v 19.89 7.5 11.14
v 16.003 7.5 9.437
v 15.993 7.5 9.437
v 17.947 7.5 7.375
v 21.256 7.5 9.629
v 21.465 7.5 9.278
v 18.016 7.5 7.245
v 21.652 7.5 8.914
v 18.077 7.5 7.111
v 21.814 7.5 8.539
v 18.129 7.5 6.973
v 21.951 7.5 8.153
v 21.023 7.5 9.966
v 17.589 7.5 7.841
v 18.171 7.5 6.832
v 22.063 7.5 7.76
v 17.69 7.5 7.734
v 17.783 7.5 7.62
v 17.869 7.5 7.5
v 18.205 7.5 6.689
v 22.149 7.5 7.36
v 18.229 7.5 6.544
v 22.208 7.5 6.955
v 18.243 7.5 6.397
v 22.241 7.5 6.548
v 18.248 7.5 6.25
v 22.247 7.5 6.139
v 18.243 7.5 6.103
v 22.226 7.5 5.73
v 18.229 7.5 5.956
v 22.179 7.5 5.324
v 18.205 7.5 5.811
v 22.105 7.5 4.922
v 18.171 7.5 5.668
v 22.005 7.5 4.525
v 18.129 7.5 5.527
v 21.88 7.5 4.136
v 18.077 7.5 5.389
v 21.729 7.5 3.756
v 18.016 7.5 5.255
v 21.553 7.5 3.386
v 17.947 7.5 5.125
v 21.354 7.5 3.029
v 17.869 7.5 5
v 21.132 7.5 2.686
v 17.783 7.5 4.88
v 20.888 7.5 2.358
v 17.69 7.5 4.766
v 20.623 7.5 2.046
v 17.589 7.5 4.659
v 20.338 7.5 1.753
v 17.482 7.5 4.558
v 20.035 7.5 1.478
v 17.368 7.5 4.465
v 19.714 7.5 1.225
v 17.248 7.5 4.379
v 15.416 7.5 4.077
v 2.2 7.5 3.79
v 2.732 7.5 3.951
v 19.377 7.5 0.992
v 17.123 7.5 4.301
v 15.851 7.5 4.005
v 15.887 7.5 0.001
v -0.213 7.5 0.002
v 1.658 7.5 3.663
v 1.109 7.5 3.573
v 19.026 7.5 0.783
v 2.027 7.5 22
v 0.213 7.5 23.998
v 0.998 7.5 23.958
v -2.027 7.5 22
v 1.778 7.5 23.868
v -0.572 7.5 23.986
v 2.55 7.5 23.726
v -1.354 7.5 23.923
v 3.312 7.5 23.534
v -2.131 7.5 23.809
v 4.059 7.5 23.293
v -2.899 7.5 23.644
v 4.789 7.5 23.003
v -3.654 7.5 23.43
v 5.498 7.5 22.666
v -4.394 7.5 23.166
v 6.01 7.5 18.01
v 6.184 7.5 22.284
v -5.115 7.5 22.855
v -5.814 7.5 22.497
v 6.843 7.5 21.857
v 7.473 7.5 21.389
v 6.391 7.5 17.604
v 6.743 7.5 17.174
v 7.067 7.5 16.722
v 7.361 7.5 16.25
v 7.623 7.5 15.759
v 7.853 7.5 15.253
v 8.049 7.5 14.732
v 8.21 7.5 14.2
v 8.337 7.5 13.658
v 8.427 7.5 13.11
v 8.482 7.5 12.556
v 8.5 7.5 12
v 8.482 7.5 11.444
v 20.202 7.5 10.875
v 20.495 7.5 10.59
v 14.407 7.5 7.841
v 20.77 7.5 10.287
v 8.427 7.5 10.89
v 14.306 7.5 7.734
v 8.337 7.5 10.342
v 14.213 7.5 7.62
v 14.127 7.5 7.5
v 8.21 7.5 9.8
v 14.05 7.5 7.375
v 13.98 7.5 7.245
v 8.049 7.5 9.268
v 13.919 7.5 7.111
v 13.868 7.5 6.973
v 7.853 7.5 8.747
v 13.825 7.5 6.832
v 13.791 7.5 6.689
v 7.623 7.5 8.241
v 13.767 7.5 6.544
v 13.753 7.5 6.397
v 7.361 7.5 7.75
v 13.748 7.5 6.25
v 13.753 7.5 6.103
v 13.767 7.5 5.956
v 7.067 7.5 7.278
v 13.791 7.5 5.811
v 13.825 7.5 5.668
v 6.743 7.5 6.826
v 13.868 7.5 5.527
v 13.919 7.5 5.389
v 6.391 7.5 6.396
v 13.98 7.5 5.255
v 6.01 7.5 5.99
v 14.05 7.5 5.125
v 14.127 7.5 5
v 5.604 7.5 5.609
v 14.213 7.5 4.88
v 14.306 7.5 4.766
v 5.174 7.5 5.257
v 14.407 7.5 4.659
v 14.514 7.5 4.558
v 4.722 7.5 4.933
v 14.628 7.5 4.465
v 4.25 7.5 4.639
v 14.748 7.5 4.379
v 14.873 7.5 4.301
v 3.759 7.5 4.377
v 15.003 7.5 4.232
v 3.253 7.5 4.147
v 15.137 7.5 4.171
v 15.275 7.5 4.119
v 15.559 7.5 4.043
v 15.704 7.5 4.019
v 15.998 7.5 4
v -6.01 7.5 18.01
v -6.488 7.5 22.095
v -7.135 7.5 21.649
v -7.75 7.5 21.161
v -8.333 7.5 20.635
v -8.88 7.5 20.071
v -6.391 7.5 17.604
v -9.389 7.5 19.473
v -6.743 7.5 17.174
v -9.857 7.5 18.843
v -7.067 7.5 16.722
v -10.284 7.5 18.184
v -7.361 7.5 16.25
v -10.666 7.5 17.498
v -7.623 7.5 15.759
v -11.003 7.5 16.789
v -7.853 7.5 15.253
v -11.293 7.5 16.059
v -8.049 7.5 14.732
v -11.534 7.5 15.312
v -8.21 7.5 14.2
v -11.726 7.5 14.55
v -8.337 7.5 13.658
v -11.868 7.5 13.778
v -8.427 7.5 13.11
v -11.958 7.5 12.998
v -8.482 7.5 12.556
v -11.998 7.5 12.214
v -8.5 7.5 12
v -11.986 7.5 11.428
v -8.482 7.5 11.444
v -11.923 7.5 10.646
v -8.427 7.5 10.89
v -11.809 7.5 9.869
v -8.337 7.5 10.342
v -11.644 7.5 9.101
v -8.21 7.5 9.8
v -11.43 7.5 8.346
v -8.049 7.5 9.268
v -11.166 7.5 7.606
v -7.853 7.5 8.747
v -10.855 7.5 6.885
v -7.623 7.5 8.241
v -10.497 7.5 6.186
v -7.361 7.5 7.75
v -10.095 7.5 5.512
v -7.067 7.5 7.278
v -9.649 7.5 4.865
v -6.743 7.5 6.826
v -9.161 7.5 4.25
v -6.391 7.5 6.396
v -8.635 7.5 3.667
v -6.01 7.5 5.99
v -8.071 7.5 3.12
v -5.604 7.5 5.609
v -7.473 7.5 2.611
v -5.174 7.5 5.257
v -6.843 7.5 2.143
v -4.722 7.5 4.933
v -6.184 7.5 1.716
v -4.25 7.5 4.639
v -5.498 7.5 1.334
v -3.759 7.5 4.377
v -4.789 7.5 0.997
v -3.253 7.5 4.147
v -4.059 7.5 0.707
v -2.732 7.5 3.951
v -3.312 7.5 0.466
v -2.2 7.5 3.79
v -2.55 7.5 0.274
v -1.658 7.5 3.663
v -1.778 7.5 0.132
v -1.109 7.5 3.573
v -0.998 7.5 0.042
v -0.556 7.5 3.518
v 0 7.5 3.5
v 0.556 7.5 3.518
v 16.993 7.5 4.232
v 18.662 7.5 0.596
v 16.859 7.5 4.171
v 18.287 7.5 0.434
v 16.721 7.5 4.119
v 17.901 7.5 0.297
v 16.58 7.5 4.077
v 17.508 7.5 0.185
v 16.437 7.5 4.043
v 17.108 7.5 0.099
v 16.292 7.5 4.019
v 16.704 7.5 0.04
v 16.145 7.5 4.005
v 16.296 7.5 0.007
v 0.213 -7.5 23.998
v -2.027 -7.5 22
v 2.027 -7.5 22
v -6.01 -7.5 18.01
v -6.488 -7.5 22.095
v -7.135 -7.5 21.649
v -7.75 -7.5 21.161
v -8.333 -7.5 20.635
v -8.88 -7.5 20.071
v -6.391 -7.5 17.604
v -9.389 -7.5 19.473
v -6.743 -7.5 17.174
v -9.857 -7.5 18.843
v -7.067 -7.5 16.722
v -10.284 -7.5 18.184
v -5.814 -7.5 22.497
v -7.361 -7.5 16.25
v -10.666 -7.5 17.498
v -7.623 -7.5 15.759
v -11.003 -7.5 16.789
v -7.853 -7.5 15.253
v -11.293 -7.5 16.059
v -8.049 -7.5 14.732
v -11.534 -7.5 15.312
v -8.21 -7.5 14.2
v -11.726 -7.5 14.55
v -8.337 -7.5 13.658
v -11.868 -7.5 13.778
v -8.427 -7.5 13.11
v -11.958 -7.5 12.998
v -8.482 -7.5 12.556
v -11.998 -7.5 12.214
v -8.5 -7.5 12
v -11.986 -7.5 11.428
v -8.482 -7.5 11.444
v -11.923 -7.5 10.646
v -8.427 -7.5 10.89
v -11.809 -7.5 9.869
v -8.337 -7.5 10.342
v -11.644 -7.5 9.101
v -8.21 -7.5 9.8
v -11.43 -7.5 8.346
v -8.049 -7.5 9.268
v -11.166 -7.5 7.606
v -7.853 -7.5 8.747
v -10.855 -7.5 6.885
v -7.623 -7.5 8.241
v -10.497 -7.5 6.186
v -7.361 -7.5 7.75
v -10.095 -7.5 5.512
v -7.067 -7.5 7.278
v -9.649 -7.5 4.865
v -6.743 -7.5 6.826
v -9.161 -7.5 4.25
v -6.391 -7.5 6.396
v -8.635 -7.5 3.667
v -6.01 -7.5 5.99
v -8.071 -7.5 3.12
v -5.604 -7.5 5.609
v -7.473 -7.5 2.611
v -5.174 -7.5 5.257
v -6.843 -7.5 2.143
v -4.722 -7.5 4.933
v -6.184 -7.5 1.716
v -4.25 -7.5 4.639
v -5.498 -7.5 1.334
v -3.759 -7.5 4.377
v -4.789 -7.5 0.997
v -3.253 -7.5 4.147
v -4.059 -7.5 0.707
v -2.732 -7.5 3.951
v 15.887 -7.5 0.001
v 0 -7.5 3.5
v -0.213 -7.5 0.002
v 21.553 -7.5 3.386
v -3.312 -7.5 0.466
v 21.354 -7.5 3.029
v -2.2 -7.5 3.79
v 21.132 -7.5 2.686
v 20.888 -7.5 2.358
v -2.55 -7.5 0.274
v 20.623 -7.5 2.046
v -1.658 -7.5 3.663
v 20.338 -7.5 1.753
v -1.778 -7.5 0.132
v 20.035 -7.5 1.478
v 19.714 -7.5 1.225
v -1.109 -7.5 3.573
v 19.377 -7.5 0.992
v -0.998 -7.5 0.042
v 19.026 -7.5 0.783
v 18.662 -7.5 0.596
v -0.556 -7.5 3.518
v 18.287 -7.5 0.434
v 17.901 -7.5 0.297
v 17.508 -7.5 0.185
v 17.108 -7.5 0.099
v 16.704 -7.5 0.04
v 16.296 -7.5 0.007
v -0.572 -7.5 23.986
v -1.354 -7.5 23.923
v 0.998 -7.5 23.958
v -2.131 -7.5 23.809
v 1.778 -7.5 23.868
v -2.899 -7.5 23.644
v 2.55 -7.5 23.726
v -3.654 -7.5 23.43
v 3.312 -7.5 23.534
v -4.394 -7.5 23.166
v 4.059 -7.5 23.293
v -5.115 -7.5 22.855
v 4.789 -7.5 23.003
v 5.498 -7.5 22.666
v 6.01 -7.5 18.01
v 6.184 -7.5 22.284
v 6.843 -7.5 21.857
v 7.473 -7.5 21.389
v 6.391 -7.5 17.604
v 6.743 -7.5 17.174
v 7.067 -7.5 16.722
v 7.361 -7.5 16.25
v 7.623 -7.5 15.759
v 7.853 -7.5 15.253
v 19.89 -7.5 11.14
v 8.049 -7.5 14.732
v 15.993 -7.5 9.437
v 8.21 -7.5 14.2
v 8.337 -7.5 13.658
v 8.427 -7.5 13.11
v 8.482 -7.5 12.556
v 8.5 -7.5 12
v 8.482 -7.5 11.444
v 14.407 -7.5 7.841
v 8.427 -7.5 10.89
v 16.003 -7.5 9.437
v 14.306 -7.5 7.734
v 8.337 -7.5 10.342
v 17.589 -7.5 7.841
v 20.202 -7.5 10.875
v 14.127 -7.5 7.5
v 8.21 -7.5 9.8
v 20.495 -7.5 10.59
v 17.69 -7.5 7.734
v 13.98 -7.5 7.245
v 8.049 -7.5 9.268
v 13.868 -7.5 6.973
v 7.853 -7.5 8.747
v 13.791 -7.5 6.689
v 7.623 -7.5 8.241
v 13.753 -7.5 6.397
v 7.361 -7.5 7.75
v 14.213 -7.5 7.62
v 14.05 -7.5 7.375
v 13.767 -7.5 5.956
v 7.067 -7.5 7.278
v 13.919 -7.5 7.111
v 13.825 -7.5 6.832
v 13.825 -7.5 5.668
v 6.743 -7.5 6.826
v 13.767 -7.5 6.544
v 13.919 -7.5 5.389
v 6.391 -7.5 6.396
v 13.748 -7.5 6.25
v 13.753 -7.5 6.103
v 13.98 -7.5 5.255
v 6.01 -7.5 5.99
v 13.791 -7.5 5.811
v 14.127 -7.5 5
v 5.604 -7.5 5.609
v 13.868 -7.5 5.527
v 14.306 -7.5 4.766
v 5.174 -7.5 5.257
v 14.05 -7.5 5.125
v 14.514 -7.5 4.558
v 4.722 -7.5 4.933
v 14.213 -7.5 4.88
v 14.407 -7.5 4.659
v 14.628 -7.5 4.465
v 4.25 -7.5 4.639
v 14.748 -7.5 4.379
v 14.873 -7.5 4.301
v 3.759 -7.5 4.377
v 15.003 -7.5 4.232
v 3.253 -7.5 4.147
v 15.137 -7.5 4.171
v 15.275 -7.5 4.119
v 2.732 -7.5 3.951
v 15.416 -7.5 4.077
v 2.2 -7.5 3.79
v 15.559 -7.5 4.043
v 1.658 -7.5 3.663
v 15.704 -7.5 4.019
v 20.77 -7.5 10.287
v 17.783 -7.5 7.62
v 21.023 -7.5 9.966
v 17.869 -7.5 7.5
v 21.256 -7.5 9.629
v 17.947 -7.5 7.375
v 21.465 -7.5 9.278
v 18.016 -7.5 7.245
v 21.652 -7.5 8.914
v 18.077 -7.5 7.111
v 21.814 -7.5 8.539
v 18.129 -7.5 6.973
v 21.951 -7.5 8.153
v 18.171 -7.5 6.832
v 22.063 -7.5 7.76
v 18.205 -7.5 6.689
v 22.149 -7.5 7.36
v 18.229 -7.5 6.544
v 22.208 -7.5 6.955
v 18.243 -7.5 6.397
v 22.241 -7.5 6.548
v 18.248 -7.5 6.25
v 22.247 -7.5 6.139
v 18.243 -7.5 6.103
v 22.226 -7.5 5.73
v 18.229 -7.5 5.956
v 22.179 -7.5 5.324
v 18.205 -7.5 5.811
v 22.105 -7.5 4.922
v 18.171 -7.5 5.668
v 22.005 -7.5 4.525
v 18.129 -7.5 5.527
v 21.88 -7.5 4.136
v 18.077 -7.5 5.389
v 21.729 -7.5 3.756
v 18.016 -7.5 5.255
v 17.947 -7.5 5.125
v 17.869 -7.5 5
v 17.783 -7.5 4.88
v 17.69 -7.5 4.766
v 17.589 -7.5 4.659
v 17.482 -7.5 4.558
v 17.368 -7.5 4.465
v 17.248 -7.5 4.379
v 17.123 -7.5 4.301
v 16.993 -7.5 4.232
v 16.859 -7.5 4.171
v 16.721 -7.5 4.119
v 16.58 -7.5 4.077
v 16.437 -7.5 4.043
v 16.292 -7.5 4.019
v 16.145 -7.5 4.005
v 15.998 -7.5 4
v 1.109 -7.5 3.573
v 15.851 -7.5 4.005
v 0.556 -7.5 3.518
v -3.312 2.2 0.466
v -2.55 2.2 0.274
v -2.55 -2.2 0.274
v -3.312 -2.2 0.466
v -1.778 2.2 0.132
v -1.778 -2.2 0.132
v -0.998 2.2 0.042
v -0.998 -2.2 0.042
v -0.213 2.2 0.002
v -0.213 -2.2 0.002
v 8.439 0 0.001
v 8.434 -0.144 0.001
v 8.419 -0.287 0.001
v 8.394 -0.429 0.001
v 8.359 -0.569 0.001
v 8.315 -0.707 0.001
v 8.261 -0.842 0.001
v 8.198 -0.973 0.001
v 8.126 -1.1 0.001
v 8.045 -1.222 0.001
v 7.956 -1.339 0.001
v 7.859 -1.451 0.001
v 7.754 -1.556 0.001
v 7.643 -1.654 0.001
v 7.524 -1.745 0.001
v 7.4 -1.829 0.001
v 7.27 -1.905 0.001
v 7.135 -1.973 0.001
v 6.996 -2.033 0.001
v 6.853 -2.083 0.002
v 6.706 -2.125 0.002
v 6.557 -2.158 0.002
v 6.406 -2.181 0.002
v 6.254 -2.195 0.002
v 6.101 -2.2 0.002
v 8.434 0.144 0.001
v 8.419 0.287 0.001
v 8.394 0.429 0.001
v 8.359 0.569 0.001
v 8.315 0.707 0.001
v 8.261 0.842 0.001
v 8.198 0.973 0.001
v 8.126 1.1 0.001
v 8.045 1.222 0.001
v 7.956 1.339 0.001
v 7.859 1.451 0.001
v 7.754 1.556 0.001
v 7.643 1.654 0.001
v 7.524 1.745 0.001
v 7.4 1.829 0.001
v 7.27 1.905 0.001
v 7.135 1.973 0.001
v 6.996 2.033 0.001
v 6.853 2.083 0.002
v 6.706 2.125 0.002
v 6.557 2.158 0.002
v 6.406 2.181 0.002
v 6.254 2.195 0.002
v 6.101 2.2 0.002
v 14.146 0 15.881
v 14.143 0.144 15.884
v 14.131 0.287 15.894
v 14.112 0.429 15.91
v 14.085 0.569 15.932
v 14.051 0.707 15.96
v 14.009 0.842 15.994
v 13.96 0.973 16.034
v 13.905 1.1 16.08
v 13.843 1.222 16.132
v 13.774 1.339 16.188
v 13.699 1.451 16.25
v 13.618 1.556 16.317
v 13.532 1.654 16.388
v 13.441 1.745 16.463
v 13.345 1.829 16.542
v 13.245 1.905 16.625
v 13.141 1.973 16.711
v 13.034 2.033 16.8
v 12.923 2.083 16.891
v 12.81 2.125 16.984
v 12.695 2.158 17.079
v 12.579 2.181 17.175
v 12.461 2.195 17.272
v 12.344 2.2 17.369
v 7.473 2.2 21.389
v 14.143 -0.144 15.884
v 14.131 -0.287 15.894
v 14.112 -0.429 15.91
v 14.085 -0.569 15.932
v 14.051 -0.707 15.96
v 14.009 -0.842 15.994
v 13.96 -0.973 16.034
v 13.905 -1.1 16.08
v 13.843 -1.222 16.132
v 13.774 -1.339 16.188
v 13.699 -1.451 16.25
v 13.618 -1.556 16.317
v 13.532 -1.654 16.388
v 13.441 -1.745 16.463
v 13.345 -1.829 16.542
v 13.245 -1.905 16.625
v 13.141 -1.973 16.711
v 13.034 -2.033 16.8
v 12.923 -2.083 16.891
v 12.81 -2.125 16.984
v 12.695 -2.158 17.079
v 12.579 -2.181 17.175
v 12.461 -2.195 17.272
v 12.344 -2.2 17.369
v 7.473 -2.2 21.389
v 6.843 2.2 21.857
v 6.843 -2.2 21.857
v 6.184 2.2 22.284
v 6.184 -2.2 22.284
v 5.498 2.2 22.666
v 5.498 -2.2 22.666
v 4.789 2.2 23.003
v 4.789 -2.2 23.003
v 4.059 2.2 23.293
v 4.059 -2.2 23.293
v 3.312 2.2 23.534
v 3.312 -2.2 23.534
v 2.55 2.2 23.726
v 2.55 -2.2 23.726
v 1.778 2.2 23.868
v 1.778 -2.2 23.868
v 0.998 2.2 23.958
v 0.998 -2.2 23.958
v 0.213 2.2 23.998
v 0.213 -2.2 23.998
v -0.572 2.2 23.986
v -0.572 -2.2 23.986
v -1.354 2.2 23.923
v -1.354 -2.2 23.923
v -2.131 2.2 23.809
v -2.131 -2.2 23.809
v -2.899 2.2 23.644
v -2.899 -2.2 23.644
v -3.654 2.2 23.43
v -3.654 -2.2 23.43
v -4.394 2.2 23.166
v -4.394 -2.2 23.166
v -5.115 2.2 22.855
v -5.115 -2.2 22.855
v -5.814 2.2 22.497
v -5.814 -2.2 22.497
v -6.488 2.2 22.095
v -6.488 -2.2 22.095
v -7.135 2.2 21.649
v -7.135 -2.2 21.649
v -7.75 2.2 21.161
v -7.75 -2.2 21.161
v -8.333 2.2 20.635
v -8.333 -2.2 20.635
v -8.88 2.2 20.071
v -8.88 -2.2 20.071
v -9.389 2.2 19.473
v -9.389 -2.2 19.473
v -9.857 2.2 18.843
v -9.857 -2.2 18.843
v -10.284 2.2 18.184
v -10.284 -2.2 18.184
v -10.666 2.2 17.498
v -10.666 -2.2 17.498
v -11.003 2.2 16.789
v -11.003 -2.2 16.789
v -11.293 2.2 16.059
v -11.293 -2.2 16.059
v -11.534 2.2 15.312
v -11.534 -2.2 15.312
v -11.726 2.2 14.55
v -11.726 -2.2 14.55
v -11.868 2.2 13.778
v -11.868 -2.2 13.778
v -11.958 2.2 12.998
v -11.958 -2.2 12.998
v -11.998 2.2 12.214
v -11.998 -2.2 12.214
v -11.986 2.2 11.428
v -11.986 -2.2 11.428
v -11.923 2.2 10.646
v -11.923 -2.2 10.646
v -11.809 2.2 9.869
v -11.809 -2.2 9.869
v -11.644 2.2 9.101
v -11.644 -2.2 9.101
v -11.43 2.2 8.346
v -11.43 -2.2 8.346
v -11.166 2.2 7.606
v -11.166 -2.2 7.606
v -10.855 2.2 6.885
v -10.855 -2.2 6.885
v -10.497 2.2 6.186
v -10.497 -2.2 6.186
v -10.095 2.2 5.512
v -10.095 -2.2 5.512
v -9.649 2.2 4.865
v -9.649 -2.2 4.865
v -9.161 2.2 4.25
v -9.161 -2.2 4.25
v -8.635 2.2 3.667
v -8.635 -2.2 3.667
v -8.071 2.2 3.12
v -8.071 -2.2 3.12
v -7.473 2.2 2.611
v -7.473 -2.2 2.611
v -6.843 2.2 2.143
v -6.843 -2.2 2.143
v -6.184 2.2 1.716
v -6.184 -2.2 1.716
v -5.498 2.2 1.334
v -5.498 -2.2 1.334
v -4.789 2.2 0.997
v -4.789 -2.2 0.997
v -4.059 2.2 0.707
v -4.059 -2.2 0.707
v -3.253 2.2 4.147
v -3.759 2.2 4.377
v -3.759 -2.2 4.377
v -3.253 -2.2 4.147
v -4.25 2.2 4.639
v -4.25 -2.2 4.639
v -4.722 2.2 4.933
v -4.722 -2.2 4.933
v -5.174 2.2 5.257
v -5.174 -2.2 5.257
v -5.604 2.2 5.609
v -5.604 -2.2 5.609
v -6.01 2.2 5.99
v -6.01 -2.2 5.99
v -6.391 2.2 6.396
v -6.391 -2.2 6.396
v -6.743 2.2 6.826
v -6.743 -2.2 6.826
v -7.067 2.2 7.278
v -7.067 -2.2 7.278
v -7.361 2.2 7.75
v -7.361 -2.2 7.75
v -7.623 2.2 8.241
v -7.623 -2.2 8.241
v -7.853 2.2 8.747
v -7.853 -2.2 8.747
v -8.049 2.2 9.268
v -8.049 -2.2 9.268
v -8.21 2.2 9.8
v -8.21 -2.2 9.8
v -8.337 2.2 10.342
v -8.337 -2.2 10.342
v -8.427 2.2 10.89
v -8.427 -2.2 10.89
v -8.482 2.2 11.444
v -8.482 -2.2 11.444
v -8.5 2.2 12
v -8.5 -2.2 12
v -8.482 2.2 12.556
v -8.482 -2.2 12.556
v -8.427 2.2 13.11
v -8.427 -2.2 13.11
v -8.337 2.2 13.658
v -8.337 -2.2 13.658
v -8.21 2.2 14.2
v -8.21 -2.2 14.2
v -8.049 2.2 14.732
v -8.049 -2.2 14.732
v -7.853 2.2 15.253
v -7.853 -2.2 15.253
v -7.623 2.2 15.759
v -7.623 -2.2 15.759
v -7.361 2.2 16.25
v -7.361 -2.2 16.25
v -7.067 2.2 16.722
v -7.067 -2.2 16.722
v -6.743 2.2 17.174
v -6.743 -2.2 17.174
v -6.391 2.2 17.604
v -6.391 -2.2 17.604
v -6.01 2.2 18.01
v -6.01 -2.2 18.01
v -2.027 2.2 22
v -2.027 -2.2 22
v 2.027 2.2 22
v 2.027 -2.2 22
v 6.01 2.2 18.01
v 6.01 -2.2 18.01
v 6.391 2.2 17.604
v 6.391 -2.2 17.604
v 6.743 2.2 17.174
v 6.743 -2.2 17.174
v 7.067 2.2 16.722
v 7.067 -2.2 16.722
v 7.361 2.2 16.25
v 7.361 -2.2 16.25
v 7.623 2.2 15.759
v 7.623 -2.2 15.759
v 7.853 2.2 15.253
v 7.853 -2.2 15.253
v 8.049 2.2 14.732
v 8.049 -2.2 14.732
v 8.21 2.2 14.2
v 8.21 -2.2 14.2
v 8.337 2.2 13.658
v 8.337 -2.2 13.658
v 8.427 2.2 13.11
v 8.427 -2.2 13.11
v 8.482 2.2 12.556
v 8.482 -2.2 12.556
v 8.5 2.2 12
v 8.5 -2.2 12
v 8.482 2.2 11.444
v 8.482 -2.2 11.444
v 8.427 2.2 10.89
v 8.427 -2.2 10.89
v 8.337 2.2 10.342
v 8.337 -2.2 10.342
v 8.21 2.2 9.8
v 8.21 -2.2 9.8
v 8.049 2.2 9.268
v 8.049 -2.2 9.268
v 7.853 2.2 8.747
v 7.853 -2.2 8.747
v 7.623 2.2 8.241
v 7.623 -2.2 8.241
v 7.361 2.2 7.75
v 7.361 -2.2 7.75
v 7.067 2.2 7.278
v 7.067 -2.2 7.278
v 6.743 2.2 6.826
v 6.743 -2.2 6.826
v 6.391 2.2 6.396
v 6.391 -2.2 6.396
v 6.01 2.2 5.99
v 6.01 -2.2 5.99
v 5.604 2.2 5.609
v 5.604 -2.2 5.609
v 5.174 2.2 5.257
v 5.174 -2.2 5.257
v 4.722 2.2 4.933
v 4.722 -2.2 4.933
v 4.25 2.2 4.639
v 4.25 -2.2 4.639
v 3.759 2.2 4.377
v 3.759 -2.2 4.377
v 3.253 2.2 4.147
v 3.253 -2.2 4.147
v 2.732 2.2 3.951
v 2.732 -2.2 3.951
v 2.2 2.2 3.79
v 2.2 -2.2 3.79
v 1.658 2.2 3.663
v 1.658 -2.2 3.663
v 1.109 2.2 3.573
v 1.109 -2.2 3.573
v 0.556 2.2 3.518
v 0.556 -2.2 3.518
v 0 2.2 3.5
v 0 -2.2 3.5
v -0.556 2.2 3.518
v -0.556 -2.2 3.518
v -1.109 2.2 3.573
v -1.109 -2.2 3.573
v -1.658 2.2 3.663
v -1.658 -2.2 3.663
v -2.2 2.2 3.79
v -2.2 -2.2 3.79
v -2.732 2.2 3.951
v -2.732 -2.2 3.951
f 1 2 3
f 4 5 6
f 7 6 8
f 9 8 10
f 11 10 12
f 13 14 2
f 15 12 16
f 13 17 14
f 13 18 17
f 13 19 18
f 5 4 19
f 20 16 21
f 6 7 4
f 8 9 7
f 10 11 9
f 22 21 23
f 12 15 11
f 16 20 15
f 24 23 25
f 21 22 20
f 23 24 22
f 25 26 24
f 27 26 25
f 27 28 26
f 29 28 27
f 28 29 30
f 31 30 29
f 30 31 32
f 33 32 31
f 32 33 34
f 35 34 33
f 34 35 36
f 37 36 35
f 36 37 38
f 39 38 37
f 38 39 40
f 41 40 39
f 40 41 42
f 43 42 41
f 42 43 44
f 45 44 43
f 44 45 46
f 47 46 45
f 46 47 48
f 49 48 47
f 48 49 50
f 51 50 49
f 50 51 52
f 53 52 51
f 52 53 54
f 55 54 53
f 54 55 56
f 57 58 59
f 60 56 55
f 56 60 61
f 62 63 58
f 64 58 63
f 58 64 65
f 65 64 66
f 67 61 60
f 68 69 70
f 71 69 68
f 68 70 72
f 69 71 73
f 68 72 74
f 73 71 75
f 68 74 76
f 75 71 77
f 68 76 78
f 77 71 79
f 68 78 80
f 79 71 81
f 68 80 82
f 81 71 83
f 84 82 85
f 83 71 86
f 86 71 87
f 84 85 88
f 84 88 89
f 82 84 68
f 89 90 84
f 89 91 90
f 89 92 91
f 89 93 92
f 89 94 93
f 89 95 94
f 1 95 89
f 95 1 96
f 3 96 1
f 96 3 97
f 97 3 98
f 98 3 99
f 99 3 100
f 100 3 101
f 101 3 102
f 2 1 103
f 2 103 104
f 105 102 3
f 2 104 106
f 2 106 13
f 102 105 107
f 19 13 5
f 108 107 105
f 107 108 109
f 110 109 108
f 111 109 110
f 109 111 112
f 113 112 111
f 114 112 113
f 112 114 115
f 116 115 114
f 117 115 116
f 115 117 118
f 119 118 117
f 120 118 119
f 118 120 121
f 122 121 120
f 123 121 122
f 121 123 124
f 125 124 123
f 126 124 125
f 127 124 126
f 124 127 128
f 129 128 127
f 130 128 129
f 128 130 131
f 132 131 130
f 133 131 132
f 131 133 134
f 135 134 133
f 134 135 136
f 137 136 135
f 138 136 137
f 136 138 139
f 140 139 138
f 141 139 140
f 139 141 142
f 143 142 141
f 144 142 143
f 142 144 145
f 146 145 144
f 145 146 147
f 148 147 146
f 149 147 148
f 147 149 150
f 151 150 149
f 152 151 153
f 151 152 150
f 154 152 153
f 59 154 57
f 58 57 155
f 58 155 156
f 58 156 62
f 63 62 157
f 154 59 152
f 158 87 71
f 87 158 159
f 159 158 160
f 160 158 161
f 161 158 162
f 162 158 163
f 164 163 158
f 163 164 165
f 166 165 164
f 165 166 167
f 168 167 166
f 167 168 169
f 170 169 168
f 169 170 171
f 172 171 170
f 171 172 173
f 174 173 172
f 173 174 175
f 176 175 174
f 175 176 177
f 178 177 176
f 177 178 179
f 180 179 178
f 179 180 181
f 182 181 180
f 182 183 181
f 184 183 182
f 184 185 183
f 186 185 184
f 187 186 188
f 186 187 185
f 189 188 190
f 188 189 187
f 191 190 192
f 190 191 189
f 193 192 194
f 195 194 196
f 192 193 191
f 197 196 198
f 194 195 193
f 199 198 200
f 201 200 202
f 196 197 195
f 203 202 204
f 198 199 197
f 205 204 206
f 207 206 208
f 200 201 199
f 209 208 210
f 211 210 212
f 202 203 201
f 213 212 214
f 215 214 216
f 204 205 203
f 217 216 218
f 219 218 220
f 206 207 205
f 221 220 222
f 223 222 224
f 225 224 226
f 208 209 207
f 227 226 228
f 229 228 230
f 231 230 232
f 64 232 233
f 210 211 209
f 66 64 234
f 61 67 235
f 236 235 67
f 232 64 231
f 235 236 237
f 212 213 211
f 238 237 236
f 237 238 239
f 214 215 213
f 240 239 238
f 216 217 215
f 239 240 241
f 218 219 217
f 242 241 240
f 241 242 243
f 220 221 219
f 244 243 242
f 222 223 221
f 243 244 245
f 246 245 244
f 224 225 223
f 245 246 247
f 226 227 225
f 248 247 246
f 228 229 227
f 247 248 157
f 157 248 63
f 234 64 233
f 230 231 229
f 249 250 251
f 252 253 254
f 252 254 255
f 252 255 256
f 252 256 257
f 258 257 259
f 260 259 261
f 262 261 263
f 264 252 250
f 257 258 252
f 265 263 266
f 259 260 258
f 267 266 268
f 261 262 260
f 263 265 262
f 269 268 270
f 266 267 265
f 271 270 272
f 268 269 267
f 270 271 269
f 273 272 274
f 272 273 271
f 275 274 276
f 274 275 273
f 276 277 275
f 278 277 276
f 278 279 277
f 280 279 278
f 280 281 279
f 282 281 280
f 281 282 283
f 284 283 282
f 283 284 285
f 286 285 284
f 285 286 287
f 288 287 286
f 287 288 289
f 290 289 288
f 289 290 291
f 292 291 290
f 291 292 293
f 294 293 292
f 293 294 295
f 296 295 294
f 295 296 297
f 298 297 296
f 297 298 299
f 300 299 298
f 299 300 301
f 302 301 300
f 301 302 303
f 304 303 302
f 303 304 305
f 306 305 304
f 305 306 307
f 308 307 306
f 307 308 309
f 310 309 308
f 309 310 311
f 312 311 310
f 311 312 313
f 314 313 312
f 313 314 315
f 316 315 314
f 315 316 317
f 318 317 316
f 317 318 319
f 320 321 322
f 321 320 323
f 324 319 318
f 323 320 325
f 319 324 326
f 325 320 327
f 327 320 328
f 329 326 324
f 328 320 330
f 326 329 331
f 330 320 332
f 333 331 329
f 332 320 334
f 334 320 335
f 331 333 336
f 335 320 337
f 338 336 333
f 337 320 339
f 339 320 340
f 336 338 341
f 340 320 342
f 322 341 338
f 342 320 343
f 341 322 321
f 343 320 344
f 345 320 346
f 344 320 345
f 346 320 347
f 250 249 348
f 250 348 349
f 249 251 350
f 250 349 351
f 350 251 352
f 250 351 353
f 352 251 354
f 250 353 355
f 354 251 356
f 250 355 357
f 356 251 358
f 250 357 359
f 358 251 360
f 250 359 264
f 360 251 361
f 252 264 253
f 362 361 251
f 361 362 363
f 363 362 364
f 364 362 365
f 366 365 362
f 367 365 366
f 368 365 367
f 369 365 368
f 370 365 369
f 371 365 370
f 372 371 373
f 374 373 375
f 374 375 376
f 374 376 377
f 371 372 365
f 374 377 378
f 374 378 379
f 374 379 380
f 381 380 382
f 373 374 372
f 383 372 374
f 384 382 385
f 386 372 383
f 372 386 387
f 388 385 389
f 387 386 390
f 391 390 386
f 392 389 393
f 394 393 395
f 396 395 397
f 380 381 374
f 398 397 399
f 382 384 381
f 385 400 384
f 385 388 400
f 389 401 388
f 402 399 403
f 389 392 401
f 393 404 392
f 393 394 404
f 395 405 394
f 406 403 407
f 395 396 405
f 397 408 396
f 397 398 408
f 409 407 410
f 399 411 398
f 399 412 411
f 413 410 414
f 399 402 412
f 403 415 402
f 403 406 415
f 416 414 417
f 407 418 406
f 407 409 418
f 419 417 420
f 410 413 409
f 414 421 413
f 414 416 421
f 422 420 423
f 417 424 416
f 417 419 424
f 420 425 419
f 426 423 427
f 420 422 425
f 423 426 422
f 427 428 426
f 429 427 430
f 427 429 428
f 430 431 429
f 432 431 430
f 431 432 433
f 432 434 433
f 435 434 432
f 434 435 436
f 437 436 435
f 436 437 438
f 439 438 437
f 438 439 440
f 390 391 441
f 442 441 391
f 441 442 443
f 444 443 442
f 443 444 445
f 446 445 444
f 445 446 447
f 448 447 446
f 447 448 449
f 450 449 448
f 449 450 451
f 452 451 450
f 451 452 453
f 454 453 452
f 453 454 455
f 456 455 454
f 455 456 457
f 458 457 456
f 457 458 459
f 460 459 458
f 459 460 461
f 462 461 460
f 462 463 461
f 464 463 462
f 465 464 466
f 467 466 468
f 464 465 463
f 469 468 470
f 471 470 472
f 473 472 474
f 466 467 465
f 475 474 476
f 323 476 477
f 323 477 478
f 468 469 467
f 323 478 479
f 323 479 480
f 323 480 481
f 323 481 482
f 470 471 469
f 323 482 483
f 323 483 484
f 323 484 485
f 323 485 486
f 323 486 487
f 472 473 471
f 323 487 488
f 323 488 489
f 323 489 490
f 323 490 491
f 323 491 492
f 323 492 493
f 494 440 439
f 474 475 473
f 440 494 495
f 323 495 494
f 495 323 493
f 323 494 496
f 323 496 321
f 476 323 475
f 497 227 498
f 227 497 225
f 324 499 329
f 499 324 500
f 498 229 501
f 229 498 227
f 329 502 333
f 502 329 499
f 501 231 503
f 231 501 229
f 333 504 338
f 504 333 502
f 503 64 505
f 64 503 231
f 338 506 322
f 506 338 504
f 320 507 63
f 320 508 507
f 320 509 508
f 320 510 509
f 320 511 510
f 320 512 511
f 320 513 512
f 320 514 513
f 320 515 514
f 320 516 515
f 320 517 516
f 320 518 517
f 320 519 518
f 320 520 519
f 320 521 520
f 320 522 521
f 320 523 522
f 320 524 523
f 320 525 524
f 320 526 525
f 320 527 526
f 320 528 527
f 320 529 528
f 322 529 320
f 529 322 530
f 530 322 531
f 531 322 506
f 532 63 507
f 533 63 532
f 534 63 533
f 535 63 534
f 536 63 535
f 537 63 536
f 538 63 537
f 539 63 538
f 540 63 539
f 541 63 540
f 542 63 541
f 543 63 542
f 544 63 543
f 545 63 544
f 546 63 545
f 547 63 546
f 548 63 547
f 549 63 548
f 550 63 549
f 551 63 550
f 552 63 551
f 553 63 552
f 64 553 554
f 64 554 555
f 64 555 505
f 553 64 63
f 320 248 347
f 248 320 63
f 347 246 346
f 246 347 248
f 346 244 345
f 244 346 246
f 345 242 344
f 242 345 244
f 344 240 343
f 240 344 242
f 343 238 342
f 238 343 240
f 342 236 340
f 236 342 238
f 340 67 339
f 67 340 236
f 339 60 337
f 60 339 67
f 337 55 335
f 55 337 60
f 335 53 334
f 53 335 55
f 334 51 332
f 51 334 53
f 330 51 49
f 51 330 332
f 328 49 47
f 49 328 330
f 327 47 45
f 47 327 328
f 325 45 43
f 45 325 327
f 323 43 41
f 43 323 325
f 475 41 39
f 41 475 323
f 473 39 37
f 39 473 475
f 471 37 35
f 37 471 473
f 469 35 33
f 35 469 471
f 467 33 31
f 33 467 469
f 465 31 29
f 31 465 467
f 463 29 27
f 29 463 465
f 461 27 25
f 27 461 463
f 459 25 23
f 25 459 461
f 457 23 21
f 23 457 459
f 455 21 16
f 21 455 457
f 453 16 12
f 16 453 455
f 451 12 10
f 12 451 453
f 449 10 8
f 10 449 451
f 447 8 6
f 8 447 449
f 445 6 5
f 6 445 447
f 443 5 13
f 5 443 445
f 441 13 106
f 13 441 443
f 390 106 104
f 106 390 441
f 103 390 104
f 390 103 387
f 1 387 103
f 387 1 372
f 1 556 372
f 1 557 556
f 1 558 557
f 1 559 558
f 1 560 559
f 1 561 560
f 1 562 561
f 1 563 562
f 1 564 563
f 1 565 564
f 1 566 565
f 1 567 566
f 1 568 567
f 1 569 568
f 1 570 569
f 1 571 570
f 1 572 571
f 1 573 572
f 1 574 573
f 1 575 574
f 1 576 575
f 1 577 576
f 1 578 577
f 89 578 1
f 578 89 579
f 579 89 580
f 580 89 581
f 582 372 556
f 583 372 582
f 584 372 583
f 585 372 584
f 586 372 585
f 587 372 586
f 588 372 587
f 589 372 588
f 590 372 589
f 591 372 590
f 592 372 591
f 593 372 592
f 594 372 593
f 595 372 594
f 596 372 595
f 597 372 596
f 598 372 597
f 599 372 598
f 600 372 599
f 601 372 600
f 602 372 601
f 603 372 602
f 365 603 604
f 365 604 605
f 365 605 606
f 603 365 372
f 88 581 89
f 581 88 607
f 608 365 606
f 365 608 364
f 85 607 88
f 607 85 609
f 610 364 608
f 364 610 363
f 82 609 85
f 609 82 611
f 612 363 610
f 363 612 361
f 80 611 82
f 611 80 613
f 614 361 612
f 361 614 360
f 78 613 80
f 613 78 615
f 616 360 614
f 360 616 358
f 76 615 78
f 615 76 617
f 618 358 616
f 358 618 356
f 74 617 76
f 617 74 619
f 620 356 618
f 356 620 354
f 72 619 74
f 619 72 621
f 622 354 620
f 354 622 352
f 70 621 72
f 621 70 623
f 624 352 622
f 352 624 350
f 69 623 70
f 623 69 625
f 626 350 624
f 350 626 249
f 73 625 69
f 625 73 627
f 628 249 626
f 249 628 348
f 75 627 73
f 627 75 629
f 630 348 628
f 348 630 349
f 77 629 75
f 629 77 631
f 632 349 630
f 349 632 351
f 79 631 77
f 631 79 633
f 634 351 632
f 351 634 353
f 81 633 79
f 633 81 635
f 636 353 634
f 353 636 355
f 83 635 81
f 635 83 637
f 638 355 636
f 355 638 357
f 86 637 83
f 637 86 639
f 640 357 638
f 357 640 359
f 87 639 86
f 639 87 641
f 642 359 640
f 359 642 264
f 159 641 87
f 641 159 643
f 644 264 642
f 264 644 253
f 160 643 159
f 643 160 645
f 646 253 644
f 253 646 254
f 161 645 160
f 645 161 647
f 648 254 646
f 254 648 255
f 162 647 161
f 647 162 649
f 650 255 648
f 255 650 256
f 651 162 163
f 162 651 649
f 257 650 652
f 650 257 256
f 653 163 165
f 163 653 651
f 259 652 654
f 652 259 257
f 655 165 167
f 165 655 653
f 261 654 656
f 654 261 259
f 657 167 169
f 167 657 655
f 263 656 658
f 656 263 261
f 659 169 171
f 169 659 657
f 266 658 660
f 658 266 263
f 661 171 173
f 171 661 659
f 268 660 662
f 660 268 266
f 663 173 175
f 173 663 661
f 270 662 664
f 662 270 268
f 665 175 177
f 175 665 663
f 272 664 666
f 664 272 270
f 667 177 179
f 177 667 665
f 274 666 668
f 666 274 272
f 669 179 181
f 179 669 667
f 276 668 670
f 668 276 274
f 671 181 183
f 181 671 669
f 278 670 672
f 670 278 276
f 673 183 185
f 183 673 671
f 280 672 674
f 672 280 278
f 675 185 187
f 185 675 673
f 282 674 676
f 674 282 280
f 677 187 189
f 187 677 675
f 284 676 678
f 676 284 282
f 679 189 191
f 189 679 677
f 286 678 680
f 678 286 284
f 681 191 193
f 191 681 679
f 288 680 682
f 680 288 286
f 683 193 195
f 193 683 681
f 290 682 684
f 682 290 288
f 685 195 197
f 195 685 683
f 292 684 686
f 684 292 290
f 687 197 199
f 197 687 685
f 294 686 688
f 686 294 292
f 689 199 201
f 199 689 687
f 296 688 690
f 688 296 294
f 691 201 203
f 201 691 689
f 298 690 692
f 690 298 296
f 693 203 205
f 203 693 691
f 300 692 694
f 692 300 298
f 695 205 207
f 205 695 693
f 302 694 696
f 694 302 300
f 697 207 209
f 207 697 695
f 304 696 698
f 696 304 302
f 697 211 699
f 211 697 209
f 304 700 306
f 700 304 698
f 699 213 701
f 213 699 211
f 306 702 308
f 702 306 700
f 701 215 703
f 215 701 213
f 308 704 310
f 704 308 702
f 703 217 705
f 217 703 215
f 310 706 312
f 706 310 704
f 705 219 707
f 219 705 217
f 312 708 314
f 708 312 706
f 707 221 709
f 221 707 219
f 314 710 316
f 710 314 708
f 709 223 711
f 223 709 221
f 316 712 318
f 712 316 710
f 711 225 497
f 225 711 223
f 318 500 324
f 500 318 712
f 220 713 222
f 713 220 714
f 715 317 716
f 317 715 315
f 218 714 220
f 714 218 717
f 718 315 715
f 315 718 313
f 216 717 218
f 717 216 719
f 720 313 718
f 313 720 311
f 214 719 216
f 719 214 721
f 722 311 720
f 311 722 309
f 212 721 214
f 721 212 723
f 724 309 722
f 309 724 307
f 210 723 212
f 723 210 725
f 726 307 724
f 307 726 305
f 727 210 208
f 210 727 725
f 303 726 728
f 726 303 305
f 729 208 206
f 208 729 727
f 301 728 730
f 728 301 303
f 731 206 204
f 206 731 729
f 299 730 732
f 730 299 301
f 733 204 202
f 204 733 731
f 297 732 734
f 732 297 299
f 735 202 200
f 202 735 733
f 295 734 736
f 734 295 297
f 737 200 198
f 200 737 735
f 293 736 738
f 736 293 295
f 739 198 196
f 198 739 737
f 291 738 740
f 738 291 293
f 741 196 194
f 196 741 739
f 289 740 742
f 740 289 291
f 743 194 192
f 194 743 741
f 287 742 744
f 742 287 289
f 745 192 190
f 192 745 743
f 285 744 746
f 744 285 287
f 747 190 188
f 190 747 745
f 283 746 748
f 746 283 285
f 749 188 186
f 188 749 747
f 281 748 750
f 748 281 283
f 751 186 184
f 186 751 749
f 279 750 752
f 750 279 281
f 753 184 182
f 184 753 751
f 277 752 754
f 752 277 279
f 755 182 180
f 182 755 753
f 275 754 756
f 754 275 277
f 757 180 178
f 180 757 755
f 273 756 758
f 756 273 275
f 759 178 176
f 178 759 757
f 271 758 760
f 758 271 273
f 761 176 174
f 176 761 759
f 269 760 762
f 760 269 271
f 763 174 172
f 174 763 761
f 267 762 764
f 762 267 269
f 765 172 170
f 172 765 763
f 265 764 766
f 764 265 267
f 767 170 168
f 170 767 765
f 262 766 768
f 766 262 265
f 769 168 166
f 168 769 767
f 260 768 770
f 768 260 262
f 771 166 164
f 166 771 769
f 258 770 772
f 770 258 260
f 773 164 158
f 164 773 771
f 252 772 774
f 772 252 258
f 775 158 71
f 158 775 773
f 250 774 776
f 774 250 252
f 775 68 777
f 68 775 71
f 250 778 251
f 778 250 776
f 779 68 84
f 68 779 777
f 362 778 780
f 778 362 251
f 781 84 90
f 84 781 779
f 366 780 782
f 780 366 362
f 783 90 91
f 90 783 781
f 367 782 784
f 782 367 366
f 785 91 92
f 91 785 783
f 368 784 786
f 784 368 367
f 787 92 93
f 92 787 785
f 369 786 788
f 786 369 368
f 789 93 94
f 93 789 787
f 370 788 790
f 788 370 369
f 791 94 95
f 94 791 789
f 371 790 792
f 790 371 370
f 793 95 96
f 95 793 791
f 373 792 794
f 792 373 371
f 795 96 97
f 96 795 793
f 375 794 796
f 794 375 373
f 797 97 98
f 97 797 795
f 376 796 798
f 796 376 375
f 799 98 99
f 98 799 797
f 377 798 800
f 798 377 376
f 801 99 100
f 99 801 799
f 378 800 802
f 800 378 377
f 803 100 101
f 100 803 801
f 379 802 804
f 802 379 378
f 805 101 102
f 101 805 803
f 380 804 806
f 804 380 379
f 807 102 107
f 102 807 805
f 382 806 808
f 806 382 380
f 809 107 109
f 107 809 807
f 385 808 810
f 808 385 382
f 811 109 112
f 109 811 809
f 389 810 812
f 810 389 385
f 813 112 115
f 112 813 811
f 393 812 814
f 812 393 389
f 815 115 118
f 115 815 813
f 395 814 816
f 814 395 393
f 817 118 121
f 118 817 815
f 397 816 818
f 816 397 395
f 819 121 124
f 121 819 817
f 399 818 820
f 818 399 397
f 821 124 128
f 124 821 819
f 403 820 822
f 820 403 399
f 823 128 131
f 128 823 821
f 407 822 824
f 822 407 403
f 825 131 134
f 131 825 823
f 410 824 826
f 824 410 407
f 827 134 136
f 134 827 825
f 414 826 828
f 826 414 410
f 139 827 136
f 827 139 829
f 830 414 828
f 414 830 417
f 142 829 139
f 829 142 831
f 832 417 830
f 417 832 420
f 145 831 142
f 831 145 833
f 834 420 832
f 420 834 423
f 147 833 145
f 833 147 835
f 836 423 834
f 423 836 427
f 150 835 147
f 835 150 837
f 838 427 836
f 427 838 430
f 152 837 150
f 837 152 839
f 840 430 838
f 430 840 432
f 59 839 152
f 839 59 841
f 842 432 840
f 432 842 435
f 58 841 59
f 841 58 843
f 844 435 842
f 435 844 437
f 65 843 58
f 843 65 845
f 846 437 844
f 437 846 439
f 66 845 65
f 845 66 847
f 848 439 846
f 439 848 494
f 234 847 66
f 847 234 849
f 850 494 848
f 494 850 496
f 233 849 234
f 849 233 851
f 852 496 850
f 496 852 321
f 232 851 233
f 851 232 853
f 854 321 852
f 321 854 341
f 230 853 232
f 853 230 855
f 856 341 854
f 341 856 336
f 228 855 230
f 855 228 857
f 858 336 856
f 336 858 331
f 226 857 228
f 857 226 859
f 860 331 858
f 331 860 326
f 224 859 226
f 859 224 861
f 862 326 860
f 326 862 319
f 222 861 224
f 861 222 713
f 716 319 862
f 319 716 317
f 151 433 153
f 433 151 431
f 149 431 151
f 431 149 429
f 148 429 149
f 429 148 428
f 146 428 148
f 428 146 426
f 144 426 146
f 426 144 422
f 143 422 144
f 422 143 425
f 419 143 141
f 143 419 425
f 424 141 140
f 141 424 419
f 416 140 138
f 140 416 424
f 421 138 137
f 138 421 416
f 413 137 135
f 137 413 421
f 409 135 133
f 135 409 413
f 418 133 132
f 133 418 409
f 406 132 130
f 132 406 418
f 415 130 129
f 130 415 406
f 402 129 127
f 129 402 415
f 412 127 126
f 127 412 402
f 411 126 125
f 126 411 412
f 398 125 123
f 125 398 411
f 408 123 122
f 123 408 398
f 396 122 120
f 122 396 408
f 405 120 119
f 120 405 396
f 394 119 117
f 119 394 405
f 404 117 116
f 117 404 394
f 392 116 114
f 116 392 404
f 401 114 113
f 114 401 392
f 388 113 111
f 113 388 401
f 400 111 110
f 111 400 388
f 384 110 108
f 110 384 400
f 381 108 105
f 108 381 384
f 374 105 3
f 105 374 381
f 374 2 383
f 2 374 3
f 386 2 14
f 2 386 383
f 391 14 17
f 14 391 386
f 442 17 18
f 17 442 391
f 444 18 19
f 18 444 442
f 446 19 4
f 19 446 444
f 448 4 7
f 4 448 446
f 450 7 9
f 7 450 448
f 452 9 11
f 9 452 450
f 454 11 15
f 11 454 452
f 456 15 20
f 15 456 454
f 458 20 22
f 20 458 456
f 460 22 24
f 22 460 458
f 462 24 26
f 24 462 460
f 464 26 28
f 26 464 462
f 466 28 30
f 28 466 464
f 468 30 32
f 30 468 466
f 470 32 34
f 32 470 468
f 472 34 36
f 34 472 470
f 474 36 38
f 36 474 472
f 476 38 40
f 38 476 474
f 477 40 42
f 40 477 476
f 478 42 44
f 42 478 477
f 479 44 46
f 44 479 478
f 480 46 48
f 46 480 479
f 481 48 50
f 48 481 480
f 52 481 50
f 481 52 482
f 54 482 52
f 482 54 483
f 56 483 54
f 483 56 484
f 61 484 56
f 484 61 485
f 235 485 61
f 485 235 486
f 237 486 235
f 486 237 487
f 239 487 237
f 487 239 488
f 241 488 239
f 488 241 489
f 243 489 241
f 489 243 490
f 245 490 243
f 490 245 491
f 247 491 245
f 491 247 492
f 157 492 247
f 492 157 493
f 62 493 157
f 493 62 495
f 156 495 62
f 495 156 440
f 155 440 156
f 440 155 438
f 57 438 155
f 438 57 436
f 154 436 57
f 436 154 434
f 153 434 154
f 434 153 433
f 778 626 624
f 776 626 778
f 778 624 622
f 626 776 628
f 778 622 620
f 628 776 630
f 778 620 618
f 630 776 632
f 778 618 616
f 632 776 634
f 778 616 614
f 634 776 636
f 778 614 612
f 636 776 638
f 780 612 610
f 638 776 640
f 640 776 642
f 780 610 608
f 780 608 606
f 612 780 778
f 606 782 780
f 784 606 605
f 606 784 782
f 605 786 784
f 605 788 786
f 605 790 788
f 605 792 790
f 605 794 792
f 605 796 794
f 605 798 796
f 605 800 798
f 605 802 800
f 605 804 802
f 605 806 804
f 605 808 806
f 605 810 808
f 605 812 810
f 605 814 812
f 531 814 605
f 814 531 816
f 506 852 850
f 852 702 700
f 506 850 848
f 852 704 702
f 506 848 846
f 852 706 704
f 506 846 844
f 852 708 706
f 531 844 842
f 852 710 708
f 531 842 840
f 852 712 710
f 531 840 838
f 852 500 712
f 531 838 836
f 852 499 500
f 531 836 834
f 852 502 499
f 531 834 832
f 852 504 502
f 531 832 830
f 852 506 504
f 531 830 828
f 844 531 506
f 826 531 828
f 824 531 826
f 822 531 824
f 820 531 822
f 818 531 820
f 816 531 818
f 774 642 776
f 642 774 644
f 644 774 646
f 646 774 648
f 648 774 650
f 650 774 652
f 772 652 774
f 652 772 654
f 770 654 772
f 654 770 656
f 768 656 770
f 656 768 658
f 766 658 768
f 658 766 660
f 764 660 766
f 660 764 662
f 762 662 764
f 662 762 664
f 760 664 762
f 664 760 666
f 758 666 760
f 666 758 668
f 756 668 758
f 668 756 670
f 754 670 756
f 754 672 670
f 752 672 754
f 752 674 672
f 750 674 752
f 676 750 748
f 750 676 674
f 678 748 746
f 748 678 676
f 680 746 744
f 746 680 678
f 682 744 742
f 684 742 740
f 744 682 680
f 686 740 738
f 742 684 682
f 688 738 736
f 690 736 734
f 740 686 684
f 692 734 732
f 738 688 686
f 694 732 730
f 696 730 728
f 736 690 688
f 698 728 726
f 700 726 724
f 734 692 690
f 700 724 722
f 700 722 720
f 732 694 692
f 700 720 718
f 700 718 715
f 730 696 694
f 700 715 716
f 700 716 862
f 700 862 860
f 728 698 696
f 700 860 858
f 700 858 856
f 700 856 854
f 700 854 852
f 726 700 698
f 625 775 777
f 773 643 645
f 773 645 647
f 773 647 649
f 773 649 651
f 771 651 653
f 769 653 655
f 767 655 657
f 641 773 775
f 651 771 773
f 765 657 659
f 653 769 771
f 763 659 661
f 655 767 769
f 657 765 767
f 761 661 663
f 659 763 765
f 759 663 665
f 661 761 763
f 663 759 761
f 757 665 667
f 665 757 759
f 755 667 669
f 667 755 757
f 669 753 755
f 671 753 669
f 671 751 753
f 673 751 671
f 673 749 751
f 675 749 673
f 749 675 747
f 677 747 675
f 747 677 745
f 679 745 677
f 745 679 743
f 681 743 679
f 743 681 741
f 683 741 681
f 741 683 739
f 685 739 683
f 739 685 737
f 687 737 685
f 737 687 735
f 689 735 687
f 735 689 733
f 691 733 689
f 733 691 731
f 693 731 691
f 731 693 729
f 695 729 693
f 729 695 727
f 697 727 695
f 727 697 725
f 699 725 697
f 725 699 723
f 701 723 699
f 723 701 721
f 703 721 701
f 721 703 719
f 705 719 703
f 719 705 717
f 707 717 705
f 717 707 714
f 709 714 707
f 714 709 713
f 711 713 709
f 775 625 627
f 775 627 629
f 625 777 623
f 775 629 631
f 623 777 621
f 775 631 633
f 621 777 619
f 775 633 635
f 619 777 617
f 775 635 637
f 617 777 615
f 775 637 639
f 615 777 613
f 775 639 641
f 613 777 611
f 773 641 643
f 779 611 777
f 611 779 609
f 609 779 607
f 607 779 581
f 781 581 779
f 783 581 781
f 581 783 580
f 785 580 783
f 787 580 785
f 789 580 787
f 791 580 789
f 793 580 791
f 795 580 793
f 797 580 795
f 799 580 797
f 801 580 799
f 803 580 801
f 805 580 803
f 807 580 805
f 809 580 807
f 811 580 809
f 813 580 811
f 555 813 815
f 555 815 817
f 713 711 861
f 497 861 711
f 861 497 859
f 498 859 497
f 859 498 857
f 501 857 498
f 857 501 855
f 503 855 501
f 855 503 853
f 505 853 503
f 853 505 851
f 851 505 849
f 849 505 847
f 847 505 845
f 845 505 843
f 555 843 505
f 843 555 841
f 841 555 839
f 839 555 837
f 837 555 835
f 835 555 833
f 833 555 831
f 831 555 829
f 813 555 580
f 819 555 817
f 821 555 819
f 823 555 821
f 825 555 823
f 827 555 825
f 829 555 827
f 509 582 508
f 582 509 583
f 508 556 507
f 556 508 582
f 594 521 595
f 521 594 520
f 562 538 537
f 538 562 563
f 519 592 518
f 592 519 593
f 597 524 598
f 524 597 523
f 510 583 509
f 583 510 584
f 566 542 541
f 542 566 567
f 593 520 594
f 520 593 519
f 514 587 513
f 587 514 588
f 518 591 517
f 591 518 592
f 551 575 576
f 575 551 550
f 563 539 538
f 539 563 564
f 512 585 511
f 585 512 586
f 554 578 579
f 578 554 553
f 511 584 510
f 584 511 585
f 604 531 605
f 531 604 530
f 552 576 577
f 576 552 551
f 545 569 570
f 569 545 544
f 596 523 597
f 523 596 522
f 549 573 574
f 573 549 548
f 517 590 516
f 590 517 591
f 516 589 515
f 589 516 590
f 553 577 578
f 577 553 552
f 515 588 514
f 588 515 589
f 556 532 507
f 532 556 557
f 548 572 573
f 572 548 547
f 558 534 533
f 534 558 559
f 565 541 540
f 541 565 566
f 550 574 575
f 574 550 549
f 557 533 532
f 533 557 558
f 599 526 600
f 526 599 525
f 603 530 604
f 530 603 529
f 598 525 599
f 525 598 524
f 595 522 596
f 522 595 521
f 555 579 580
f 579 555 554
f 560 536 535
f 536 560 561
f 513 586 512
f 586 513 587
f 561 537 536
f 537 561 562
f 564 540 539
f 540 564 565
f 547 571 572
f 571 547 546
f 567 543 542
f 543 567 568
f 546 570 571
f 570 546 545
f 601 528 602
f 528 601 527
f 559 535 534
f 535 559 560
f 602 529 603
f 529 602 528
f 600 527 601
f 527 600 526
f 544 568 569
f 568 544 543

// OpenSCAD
// Rail pivot ring
// The ring at the end of the top rail that holds the rack to the far end of
// the stands. It turns freely on the 16 mm rail tube.
//
// Two 4 mm wires connect to it:
// - One wire end goes through the hole in the lobe, parallel to the tube.
// - The other wire runs through the slot between the ring's two rims. The
//   slot is open at the back, so the ring slides onto that wire sideways
//   before it goes on the tube; the tube then keeps the wire in the slot.
//
// Modelled with the tube along z and the lobe along +x. The STL is turned to
// print on one flat side of the lobe, so the slot stands upright and nothing
// needs supports; the round holes are teardrop-shaped for the same reason.
// Printed this way, the pull on the lobe runs along the layers, not across
// them.

/* [Ring] */
// Hole for the tube (mm); about 1 mm over the tube so it turns freely
bore_d = 17;
// Thickness along the tube (mm)
thickness = 15;
// Outer diameter of the round part (mm)
ring_d = 24;

/* [Lobe] */
// Distance from the ring's centre to the centre of the lobe hole (mm)
lobe_offset = 17;
// Wire diameter (mm)
wire_d = 4.0;
// Extra diameter for the lobe hole, so the wire can pivot freely
wire_clearance = 0.5;
// Wall around the lobe hole (mm)
lobe_wall = 4;

/* [Slot] */
// Slot width (mm); the wire is 4 mm
slot_w = 4.4;
// How far the slot goes in from the back of the ring (mm)
slot_depth = 24;

/* [Output] */
// Turn the part to its print orientation
print_orientation = true;

/* [Hidden] */
$fn = 96;
eps = 0.01;

R1 = ring_d / 2;
hole_d = wire_d + wire_clearance;
R2 = hole_d / 2 + lobe_wall;
slot_end = -R1 + slot_depth;

// Outward normal of the lobe's flat side on -y; the part prints on this side
nx = (R1 - R2) / lobe_offset;
n = [nx, -sqrt(1 - nx * nx)];
// "Up" in the print orientation, as an angle in the xy plane
up_angle = atan2(-n[1], -n[0]);

assert(R1 > R2, "The lobe must be smaller than the ring");
assert(ring_d > bore_d + 4, "Ring wall is too thin");
assert(thickness - slot_w >= 6, "Rims beside the slot are too thin");
assert(slot_end < lobe_offset - hole_d / 2 - 2, "Slot cuts too close to the lobe hole");

// Teardrop pointing at up_angle, so a horizontal hole prints without supports.
// The point is cut flat at `top` from the centre, leaving a short bridge.
module teardrop2d(d, top = 1e3) {
    r = d / 2;
    rotate(up_angle - 90) intersection() {
        hull() {
            circle(d = d);
            translate([0, r * sqrt(2)]) square(0.01, center = true);
        }
        translate([-d, -d]) square([2 * d, d + top]);
    }
}

module part() {
    difference() {
        translate([0, 0, -thickness / 2]) linear_extrude(thickness)
            difference() {
                hull() {
                    circle(r = R1);
                    translate([lobe_offset, 0]) circle(r = R2);
                }
                // Cut short of the ring's outer edge so the point doesn't break through
                teardrop2d(bore_d, R1 - 2);
                translate([lobe_offset, 0]) teardrop2d(hole_d);
            }
        // Slot for the second wire, open at the back
        // with a round end that the wire sits in
        translate([-R1 - 1, -ring_d, -slot_w / 2])
            cube([slot_end - slot_w / 2 + R1 + 1, 2 * ring_d, slot_w]);
        translate([slot_end - slot_w / 2, ring_d, 0]) rotate([90, 0, 0])
            cylinder(d = slot_w, h = 2 * ring_d);
    }
}

if (print_orientation) {
    // Flat lobe side down: turn the normal n to -y, then lay -y onto the bed
    translate([0, 0, R1]) rotate([90, 0, 0])
        rotate(-90 - atan2(n[1], n[0])) part();
} else {
    part();
}
